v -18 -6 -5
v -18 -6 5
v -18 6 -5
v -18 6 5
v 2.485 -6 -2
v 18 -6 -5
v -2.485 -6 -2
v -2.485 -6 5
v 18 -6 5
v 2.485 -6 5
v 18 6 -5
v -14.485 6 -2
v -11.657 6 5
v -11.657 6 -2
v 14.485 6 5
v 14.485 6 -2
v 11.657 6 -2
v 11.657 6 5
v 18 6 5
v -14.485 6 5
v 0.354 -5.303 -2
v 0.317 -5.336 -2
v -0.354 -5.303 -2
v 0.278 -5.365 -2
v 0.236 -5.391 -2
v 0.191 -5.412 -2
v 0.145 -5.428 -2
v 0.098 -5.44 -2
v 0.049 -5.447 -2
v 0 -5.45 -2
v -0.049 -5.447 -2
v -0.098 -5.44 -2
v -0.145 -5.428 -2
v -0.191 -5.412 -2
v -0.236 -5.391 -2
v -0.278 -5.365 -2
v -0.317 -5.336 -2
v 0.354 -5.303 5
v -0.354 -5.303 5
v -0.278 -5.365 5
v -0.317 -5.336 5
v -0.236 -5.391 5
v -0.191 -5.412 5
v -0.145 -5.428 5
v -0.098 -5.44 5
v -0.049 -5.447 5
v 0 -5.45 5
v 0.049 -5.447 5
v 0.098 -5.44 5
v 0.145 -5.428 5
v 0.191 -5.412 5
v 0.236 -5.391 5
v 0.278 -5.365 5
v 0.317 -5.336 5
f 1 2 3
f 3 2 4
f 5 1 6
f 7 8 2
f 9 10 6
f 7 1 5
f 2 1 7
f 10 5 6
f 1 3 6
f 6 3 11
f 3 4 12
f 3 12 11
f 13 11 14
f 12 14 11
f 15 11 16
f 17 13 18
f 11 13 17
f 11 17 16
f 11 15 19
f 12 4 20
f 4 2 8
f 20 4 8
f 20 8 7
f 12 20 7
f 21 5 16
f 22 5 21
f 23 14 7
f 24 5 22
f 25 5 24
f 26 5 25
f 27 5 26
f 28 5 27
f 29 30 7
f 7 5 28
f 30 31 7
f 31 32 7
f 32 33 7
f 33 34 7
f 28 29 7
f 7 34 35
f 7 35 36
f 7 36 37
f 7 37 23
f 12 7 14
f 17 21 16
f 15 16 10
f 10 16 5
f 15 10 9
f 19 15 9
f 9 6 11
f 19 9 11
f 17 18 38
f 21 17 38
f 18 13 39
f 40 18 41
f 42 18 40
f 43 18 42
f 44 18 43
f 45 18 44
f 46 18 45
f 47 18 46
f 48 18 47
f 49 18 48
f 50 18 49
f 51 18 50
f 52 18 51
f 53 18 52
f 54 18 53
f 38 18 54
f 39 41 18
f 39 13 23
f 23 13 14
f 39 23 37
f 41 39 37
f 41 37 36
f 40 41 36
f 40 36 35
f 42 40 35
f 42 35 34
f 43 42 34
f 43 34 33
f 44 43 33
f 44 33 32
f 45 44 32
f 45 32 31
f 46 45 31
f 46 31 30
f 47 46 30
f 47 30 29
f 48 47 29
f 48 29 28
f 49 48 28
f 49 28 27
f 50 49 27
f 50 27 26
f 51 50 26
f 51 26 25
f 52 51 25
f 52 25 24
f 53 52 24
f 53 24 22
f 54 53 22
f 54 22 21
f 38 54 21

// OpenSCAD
module five_gon(p1, p2, p3, p4, p5, h=1) {
    linear_extrude(height=h,center=true) {
        polygon(
            points=[p1, p2, p3, p4, p5],
            paths=[[0,1,2,3,5]]
        );
    }
}

module rounded_elbow(angle, length, width=2, depth=10) {
	// translate([])
	adj = cos(angle/2) * length;
	opp = sin(angle/2) * length;
	bulk = (width/2)/cos(angle/2);
	extra = (width/4)/cos(angle/2);
	fudge = 0.9;

	union() {
		// Length of arm on right
		translate([adj/2,0,0])
			rotate([0,0,angle/2])
				cube([length,width,depth],center=true);
		// Length of arm on left
		translate([-adj/2,0,0])
			rotate([0,0,-angle/2])
				cube([length,width,depth],center=true);
		// Round cap on outside of connection
		translate([0,-opp/2,0])
			cylinder(r=width/2,h=depth,center=true,$fn=64);
		
		// Round cap on inside of connection
		translate([0,-opp/2+bulk,0]) {
			difference() {
				translate([0,extra/2*fudge,0])
					cube([extra,extra,depth],center=true);
				translate([0,extra,0])
					cylinder(r=width/4,h=depth*1.5,center=true,$fn=64);
			}
		}
	}
}

module belt() {
	difference() {
		translate([-7,-17,0])
			cube([14,7,10]);
		rotate([0,0,-135]) {
		}
	}
}

// belt();
difference() {
	cube([36,12,10],center=true);
	translate([0,0,2])
		rounded_elbow(90, 20, 2, 8);
}
